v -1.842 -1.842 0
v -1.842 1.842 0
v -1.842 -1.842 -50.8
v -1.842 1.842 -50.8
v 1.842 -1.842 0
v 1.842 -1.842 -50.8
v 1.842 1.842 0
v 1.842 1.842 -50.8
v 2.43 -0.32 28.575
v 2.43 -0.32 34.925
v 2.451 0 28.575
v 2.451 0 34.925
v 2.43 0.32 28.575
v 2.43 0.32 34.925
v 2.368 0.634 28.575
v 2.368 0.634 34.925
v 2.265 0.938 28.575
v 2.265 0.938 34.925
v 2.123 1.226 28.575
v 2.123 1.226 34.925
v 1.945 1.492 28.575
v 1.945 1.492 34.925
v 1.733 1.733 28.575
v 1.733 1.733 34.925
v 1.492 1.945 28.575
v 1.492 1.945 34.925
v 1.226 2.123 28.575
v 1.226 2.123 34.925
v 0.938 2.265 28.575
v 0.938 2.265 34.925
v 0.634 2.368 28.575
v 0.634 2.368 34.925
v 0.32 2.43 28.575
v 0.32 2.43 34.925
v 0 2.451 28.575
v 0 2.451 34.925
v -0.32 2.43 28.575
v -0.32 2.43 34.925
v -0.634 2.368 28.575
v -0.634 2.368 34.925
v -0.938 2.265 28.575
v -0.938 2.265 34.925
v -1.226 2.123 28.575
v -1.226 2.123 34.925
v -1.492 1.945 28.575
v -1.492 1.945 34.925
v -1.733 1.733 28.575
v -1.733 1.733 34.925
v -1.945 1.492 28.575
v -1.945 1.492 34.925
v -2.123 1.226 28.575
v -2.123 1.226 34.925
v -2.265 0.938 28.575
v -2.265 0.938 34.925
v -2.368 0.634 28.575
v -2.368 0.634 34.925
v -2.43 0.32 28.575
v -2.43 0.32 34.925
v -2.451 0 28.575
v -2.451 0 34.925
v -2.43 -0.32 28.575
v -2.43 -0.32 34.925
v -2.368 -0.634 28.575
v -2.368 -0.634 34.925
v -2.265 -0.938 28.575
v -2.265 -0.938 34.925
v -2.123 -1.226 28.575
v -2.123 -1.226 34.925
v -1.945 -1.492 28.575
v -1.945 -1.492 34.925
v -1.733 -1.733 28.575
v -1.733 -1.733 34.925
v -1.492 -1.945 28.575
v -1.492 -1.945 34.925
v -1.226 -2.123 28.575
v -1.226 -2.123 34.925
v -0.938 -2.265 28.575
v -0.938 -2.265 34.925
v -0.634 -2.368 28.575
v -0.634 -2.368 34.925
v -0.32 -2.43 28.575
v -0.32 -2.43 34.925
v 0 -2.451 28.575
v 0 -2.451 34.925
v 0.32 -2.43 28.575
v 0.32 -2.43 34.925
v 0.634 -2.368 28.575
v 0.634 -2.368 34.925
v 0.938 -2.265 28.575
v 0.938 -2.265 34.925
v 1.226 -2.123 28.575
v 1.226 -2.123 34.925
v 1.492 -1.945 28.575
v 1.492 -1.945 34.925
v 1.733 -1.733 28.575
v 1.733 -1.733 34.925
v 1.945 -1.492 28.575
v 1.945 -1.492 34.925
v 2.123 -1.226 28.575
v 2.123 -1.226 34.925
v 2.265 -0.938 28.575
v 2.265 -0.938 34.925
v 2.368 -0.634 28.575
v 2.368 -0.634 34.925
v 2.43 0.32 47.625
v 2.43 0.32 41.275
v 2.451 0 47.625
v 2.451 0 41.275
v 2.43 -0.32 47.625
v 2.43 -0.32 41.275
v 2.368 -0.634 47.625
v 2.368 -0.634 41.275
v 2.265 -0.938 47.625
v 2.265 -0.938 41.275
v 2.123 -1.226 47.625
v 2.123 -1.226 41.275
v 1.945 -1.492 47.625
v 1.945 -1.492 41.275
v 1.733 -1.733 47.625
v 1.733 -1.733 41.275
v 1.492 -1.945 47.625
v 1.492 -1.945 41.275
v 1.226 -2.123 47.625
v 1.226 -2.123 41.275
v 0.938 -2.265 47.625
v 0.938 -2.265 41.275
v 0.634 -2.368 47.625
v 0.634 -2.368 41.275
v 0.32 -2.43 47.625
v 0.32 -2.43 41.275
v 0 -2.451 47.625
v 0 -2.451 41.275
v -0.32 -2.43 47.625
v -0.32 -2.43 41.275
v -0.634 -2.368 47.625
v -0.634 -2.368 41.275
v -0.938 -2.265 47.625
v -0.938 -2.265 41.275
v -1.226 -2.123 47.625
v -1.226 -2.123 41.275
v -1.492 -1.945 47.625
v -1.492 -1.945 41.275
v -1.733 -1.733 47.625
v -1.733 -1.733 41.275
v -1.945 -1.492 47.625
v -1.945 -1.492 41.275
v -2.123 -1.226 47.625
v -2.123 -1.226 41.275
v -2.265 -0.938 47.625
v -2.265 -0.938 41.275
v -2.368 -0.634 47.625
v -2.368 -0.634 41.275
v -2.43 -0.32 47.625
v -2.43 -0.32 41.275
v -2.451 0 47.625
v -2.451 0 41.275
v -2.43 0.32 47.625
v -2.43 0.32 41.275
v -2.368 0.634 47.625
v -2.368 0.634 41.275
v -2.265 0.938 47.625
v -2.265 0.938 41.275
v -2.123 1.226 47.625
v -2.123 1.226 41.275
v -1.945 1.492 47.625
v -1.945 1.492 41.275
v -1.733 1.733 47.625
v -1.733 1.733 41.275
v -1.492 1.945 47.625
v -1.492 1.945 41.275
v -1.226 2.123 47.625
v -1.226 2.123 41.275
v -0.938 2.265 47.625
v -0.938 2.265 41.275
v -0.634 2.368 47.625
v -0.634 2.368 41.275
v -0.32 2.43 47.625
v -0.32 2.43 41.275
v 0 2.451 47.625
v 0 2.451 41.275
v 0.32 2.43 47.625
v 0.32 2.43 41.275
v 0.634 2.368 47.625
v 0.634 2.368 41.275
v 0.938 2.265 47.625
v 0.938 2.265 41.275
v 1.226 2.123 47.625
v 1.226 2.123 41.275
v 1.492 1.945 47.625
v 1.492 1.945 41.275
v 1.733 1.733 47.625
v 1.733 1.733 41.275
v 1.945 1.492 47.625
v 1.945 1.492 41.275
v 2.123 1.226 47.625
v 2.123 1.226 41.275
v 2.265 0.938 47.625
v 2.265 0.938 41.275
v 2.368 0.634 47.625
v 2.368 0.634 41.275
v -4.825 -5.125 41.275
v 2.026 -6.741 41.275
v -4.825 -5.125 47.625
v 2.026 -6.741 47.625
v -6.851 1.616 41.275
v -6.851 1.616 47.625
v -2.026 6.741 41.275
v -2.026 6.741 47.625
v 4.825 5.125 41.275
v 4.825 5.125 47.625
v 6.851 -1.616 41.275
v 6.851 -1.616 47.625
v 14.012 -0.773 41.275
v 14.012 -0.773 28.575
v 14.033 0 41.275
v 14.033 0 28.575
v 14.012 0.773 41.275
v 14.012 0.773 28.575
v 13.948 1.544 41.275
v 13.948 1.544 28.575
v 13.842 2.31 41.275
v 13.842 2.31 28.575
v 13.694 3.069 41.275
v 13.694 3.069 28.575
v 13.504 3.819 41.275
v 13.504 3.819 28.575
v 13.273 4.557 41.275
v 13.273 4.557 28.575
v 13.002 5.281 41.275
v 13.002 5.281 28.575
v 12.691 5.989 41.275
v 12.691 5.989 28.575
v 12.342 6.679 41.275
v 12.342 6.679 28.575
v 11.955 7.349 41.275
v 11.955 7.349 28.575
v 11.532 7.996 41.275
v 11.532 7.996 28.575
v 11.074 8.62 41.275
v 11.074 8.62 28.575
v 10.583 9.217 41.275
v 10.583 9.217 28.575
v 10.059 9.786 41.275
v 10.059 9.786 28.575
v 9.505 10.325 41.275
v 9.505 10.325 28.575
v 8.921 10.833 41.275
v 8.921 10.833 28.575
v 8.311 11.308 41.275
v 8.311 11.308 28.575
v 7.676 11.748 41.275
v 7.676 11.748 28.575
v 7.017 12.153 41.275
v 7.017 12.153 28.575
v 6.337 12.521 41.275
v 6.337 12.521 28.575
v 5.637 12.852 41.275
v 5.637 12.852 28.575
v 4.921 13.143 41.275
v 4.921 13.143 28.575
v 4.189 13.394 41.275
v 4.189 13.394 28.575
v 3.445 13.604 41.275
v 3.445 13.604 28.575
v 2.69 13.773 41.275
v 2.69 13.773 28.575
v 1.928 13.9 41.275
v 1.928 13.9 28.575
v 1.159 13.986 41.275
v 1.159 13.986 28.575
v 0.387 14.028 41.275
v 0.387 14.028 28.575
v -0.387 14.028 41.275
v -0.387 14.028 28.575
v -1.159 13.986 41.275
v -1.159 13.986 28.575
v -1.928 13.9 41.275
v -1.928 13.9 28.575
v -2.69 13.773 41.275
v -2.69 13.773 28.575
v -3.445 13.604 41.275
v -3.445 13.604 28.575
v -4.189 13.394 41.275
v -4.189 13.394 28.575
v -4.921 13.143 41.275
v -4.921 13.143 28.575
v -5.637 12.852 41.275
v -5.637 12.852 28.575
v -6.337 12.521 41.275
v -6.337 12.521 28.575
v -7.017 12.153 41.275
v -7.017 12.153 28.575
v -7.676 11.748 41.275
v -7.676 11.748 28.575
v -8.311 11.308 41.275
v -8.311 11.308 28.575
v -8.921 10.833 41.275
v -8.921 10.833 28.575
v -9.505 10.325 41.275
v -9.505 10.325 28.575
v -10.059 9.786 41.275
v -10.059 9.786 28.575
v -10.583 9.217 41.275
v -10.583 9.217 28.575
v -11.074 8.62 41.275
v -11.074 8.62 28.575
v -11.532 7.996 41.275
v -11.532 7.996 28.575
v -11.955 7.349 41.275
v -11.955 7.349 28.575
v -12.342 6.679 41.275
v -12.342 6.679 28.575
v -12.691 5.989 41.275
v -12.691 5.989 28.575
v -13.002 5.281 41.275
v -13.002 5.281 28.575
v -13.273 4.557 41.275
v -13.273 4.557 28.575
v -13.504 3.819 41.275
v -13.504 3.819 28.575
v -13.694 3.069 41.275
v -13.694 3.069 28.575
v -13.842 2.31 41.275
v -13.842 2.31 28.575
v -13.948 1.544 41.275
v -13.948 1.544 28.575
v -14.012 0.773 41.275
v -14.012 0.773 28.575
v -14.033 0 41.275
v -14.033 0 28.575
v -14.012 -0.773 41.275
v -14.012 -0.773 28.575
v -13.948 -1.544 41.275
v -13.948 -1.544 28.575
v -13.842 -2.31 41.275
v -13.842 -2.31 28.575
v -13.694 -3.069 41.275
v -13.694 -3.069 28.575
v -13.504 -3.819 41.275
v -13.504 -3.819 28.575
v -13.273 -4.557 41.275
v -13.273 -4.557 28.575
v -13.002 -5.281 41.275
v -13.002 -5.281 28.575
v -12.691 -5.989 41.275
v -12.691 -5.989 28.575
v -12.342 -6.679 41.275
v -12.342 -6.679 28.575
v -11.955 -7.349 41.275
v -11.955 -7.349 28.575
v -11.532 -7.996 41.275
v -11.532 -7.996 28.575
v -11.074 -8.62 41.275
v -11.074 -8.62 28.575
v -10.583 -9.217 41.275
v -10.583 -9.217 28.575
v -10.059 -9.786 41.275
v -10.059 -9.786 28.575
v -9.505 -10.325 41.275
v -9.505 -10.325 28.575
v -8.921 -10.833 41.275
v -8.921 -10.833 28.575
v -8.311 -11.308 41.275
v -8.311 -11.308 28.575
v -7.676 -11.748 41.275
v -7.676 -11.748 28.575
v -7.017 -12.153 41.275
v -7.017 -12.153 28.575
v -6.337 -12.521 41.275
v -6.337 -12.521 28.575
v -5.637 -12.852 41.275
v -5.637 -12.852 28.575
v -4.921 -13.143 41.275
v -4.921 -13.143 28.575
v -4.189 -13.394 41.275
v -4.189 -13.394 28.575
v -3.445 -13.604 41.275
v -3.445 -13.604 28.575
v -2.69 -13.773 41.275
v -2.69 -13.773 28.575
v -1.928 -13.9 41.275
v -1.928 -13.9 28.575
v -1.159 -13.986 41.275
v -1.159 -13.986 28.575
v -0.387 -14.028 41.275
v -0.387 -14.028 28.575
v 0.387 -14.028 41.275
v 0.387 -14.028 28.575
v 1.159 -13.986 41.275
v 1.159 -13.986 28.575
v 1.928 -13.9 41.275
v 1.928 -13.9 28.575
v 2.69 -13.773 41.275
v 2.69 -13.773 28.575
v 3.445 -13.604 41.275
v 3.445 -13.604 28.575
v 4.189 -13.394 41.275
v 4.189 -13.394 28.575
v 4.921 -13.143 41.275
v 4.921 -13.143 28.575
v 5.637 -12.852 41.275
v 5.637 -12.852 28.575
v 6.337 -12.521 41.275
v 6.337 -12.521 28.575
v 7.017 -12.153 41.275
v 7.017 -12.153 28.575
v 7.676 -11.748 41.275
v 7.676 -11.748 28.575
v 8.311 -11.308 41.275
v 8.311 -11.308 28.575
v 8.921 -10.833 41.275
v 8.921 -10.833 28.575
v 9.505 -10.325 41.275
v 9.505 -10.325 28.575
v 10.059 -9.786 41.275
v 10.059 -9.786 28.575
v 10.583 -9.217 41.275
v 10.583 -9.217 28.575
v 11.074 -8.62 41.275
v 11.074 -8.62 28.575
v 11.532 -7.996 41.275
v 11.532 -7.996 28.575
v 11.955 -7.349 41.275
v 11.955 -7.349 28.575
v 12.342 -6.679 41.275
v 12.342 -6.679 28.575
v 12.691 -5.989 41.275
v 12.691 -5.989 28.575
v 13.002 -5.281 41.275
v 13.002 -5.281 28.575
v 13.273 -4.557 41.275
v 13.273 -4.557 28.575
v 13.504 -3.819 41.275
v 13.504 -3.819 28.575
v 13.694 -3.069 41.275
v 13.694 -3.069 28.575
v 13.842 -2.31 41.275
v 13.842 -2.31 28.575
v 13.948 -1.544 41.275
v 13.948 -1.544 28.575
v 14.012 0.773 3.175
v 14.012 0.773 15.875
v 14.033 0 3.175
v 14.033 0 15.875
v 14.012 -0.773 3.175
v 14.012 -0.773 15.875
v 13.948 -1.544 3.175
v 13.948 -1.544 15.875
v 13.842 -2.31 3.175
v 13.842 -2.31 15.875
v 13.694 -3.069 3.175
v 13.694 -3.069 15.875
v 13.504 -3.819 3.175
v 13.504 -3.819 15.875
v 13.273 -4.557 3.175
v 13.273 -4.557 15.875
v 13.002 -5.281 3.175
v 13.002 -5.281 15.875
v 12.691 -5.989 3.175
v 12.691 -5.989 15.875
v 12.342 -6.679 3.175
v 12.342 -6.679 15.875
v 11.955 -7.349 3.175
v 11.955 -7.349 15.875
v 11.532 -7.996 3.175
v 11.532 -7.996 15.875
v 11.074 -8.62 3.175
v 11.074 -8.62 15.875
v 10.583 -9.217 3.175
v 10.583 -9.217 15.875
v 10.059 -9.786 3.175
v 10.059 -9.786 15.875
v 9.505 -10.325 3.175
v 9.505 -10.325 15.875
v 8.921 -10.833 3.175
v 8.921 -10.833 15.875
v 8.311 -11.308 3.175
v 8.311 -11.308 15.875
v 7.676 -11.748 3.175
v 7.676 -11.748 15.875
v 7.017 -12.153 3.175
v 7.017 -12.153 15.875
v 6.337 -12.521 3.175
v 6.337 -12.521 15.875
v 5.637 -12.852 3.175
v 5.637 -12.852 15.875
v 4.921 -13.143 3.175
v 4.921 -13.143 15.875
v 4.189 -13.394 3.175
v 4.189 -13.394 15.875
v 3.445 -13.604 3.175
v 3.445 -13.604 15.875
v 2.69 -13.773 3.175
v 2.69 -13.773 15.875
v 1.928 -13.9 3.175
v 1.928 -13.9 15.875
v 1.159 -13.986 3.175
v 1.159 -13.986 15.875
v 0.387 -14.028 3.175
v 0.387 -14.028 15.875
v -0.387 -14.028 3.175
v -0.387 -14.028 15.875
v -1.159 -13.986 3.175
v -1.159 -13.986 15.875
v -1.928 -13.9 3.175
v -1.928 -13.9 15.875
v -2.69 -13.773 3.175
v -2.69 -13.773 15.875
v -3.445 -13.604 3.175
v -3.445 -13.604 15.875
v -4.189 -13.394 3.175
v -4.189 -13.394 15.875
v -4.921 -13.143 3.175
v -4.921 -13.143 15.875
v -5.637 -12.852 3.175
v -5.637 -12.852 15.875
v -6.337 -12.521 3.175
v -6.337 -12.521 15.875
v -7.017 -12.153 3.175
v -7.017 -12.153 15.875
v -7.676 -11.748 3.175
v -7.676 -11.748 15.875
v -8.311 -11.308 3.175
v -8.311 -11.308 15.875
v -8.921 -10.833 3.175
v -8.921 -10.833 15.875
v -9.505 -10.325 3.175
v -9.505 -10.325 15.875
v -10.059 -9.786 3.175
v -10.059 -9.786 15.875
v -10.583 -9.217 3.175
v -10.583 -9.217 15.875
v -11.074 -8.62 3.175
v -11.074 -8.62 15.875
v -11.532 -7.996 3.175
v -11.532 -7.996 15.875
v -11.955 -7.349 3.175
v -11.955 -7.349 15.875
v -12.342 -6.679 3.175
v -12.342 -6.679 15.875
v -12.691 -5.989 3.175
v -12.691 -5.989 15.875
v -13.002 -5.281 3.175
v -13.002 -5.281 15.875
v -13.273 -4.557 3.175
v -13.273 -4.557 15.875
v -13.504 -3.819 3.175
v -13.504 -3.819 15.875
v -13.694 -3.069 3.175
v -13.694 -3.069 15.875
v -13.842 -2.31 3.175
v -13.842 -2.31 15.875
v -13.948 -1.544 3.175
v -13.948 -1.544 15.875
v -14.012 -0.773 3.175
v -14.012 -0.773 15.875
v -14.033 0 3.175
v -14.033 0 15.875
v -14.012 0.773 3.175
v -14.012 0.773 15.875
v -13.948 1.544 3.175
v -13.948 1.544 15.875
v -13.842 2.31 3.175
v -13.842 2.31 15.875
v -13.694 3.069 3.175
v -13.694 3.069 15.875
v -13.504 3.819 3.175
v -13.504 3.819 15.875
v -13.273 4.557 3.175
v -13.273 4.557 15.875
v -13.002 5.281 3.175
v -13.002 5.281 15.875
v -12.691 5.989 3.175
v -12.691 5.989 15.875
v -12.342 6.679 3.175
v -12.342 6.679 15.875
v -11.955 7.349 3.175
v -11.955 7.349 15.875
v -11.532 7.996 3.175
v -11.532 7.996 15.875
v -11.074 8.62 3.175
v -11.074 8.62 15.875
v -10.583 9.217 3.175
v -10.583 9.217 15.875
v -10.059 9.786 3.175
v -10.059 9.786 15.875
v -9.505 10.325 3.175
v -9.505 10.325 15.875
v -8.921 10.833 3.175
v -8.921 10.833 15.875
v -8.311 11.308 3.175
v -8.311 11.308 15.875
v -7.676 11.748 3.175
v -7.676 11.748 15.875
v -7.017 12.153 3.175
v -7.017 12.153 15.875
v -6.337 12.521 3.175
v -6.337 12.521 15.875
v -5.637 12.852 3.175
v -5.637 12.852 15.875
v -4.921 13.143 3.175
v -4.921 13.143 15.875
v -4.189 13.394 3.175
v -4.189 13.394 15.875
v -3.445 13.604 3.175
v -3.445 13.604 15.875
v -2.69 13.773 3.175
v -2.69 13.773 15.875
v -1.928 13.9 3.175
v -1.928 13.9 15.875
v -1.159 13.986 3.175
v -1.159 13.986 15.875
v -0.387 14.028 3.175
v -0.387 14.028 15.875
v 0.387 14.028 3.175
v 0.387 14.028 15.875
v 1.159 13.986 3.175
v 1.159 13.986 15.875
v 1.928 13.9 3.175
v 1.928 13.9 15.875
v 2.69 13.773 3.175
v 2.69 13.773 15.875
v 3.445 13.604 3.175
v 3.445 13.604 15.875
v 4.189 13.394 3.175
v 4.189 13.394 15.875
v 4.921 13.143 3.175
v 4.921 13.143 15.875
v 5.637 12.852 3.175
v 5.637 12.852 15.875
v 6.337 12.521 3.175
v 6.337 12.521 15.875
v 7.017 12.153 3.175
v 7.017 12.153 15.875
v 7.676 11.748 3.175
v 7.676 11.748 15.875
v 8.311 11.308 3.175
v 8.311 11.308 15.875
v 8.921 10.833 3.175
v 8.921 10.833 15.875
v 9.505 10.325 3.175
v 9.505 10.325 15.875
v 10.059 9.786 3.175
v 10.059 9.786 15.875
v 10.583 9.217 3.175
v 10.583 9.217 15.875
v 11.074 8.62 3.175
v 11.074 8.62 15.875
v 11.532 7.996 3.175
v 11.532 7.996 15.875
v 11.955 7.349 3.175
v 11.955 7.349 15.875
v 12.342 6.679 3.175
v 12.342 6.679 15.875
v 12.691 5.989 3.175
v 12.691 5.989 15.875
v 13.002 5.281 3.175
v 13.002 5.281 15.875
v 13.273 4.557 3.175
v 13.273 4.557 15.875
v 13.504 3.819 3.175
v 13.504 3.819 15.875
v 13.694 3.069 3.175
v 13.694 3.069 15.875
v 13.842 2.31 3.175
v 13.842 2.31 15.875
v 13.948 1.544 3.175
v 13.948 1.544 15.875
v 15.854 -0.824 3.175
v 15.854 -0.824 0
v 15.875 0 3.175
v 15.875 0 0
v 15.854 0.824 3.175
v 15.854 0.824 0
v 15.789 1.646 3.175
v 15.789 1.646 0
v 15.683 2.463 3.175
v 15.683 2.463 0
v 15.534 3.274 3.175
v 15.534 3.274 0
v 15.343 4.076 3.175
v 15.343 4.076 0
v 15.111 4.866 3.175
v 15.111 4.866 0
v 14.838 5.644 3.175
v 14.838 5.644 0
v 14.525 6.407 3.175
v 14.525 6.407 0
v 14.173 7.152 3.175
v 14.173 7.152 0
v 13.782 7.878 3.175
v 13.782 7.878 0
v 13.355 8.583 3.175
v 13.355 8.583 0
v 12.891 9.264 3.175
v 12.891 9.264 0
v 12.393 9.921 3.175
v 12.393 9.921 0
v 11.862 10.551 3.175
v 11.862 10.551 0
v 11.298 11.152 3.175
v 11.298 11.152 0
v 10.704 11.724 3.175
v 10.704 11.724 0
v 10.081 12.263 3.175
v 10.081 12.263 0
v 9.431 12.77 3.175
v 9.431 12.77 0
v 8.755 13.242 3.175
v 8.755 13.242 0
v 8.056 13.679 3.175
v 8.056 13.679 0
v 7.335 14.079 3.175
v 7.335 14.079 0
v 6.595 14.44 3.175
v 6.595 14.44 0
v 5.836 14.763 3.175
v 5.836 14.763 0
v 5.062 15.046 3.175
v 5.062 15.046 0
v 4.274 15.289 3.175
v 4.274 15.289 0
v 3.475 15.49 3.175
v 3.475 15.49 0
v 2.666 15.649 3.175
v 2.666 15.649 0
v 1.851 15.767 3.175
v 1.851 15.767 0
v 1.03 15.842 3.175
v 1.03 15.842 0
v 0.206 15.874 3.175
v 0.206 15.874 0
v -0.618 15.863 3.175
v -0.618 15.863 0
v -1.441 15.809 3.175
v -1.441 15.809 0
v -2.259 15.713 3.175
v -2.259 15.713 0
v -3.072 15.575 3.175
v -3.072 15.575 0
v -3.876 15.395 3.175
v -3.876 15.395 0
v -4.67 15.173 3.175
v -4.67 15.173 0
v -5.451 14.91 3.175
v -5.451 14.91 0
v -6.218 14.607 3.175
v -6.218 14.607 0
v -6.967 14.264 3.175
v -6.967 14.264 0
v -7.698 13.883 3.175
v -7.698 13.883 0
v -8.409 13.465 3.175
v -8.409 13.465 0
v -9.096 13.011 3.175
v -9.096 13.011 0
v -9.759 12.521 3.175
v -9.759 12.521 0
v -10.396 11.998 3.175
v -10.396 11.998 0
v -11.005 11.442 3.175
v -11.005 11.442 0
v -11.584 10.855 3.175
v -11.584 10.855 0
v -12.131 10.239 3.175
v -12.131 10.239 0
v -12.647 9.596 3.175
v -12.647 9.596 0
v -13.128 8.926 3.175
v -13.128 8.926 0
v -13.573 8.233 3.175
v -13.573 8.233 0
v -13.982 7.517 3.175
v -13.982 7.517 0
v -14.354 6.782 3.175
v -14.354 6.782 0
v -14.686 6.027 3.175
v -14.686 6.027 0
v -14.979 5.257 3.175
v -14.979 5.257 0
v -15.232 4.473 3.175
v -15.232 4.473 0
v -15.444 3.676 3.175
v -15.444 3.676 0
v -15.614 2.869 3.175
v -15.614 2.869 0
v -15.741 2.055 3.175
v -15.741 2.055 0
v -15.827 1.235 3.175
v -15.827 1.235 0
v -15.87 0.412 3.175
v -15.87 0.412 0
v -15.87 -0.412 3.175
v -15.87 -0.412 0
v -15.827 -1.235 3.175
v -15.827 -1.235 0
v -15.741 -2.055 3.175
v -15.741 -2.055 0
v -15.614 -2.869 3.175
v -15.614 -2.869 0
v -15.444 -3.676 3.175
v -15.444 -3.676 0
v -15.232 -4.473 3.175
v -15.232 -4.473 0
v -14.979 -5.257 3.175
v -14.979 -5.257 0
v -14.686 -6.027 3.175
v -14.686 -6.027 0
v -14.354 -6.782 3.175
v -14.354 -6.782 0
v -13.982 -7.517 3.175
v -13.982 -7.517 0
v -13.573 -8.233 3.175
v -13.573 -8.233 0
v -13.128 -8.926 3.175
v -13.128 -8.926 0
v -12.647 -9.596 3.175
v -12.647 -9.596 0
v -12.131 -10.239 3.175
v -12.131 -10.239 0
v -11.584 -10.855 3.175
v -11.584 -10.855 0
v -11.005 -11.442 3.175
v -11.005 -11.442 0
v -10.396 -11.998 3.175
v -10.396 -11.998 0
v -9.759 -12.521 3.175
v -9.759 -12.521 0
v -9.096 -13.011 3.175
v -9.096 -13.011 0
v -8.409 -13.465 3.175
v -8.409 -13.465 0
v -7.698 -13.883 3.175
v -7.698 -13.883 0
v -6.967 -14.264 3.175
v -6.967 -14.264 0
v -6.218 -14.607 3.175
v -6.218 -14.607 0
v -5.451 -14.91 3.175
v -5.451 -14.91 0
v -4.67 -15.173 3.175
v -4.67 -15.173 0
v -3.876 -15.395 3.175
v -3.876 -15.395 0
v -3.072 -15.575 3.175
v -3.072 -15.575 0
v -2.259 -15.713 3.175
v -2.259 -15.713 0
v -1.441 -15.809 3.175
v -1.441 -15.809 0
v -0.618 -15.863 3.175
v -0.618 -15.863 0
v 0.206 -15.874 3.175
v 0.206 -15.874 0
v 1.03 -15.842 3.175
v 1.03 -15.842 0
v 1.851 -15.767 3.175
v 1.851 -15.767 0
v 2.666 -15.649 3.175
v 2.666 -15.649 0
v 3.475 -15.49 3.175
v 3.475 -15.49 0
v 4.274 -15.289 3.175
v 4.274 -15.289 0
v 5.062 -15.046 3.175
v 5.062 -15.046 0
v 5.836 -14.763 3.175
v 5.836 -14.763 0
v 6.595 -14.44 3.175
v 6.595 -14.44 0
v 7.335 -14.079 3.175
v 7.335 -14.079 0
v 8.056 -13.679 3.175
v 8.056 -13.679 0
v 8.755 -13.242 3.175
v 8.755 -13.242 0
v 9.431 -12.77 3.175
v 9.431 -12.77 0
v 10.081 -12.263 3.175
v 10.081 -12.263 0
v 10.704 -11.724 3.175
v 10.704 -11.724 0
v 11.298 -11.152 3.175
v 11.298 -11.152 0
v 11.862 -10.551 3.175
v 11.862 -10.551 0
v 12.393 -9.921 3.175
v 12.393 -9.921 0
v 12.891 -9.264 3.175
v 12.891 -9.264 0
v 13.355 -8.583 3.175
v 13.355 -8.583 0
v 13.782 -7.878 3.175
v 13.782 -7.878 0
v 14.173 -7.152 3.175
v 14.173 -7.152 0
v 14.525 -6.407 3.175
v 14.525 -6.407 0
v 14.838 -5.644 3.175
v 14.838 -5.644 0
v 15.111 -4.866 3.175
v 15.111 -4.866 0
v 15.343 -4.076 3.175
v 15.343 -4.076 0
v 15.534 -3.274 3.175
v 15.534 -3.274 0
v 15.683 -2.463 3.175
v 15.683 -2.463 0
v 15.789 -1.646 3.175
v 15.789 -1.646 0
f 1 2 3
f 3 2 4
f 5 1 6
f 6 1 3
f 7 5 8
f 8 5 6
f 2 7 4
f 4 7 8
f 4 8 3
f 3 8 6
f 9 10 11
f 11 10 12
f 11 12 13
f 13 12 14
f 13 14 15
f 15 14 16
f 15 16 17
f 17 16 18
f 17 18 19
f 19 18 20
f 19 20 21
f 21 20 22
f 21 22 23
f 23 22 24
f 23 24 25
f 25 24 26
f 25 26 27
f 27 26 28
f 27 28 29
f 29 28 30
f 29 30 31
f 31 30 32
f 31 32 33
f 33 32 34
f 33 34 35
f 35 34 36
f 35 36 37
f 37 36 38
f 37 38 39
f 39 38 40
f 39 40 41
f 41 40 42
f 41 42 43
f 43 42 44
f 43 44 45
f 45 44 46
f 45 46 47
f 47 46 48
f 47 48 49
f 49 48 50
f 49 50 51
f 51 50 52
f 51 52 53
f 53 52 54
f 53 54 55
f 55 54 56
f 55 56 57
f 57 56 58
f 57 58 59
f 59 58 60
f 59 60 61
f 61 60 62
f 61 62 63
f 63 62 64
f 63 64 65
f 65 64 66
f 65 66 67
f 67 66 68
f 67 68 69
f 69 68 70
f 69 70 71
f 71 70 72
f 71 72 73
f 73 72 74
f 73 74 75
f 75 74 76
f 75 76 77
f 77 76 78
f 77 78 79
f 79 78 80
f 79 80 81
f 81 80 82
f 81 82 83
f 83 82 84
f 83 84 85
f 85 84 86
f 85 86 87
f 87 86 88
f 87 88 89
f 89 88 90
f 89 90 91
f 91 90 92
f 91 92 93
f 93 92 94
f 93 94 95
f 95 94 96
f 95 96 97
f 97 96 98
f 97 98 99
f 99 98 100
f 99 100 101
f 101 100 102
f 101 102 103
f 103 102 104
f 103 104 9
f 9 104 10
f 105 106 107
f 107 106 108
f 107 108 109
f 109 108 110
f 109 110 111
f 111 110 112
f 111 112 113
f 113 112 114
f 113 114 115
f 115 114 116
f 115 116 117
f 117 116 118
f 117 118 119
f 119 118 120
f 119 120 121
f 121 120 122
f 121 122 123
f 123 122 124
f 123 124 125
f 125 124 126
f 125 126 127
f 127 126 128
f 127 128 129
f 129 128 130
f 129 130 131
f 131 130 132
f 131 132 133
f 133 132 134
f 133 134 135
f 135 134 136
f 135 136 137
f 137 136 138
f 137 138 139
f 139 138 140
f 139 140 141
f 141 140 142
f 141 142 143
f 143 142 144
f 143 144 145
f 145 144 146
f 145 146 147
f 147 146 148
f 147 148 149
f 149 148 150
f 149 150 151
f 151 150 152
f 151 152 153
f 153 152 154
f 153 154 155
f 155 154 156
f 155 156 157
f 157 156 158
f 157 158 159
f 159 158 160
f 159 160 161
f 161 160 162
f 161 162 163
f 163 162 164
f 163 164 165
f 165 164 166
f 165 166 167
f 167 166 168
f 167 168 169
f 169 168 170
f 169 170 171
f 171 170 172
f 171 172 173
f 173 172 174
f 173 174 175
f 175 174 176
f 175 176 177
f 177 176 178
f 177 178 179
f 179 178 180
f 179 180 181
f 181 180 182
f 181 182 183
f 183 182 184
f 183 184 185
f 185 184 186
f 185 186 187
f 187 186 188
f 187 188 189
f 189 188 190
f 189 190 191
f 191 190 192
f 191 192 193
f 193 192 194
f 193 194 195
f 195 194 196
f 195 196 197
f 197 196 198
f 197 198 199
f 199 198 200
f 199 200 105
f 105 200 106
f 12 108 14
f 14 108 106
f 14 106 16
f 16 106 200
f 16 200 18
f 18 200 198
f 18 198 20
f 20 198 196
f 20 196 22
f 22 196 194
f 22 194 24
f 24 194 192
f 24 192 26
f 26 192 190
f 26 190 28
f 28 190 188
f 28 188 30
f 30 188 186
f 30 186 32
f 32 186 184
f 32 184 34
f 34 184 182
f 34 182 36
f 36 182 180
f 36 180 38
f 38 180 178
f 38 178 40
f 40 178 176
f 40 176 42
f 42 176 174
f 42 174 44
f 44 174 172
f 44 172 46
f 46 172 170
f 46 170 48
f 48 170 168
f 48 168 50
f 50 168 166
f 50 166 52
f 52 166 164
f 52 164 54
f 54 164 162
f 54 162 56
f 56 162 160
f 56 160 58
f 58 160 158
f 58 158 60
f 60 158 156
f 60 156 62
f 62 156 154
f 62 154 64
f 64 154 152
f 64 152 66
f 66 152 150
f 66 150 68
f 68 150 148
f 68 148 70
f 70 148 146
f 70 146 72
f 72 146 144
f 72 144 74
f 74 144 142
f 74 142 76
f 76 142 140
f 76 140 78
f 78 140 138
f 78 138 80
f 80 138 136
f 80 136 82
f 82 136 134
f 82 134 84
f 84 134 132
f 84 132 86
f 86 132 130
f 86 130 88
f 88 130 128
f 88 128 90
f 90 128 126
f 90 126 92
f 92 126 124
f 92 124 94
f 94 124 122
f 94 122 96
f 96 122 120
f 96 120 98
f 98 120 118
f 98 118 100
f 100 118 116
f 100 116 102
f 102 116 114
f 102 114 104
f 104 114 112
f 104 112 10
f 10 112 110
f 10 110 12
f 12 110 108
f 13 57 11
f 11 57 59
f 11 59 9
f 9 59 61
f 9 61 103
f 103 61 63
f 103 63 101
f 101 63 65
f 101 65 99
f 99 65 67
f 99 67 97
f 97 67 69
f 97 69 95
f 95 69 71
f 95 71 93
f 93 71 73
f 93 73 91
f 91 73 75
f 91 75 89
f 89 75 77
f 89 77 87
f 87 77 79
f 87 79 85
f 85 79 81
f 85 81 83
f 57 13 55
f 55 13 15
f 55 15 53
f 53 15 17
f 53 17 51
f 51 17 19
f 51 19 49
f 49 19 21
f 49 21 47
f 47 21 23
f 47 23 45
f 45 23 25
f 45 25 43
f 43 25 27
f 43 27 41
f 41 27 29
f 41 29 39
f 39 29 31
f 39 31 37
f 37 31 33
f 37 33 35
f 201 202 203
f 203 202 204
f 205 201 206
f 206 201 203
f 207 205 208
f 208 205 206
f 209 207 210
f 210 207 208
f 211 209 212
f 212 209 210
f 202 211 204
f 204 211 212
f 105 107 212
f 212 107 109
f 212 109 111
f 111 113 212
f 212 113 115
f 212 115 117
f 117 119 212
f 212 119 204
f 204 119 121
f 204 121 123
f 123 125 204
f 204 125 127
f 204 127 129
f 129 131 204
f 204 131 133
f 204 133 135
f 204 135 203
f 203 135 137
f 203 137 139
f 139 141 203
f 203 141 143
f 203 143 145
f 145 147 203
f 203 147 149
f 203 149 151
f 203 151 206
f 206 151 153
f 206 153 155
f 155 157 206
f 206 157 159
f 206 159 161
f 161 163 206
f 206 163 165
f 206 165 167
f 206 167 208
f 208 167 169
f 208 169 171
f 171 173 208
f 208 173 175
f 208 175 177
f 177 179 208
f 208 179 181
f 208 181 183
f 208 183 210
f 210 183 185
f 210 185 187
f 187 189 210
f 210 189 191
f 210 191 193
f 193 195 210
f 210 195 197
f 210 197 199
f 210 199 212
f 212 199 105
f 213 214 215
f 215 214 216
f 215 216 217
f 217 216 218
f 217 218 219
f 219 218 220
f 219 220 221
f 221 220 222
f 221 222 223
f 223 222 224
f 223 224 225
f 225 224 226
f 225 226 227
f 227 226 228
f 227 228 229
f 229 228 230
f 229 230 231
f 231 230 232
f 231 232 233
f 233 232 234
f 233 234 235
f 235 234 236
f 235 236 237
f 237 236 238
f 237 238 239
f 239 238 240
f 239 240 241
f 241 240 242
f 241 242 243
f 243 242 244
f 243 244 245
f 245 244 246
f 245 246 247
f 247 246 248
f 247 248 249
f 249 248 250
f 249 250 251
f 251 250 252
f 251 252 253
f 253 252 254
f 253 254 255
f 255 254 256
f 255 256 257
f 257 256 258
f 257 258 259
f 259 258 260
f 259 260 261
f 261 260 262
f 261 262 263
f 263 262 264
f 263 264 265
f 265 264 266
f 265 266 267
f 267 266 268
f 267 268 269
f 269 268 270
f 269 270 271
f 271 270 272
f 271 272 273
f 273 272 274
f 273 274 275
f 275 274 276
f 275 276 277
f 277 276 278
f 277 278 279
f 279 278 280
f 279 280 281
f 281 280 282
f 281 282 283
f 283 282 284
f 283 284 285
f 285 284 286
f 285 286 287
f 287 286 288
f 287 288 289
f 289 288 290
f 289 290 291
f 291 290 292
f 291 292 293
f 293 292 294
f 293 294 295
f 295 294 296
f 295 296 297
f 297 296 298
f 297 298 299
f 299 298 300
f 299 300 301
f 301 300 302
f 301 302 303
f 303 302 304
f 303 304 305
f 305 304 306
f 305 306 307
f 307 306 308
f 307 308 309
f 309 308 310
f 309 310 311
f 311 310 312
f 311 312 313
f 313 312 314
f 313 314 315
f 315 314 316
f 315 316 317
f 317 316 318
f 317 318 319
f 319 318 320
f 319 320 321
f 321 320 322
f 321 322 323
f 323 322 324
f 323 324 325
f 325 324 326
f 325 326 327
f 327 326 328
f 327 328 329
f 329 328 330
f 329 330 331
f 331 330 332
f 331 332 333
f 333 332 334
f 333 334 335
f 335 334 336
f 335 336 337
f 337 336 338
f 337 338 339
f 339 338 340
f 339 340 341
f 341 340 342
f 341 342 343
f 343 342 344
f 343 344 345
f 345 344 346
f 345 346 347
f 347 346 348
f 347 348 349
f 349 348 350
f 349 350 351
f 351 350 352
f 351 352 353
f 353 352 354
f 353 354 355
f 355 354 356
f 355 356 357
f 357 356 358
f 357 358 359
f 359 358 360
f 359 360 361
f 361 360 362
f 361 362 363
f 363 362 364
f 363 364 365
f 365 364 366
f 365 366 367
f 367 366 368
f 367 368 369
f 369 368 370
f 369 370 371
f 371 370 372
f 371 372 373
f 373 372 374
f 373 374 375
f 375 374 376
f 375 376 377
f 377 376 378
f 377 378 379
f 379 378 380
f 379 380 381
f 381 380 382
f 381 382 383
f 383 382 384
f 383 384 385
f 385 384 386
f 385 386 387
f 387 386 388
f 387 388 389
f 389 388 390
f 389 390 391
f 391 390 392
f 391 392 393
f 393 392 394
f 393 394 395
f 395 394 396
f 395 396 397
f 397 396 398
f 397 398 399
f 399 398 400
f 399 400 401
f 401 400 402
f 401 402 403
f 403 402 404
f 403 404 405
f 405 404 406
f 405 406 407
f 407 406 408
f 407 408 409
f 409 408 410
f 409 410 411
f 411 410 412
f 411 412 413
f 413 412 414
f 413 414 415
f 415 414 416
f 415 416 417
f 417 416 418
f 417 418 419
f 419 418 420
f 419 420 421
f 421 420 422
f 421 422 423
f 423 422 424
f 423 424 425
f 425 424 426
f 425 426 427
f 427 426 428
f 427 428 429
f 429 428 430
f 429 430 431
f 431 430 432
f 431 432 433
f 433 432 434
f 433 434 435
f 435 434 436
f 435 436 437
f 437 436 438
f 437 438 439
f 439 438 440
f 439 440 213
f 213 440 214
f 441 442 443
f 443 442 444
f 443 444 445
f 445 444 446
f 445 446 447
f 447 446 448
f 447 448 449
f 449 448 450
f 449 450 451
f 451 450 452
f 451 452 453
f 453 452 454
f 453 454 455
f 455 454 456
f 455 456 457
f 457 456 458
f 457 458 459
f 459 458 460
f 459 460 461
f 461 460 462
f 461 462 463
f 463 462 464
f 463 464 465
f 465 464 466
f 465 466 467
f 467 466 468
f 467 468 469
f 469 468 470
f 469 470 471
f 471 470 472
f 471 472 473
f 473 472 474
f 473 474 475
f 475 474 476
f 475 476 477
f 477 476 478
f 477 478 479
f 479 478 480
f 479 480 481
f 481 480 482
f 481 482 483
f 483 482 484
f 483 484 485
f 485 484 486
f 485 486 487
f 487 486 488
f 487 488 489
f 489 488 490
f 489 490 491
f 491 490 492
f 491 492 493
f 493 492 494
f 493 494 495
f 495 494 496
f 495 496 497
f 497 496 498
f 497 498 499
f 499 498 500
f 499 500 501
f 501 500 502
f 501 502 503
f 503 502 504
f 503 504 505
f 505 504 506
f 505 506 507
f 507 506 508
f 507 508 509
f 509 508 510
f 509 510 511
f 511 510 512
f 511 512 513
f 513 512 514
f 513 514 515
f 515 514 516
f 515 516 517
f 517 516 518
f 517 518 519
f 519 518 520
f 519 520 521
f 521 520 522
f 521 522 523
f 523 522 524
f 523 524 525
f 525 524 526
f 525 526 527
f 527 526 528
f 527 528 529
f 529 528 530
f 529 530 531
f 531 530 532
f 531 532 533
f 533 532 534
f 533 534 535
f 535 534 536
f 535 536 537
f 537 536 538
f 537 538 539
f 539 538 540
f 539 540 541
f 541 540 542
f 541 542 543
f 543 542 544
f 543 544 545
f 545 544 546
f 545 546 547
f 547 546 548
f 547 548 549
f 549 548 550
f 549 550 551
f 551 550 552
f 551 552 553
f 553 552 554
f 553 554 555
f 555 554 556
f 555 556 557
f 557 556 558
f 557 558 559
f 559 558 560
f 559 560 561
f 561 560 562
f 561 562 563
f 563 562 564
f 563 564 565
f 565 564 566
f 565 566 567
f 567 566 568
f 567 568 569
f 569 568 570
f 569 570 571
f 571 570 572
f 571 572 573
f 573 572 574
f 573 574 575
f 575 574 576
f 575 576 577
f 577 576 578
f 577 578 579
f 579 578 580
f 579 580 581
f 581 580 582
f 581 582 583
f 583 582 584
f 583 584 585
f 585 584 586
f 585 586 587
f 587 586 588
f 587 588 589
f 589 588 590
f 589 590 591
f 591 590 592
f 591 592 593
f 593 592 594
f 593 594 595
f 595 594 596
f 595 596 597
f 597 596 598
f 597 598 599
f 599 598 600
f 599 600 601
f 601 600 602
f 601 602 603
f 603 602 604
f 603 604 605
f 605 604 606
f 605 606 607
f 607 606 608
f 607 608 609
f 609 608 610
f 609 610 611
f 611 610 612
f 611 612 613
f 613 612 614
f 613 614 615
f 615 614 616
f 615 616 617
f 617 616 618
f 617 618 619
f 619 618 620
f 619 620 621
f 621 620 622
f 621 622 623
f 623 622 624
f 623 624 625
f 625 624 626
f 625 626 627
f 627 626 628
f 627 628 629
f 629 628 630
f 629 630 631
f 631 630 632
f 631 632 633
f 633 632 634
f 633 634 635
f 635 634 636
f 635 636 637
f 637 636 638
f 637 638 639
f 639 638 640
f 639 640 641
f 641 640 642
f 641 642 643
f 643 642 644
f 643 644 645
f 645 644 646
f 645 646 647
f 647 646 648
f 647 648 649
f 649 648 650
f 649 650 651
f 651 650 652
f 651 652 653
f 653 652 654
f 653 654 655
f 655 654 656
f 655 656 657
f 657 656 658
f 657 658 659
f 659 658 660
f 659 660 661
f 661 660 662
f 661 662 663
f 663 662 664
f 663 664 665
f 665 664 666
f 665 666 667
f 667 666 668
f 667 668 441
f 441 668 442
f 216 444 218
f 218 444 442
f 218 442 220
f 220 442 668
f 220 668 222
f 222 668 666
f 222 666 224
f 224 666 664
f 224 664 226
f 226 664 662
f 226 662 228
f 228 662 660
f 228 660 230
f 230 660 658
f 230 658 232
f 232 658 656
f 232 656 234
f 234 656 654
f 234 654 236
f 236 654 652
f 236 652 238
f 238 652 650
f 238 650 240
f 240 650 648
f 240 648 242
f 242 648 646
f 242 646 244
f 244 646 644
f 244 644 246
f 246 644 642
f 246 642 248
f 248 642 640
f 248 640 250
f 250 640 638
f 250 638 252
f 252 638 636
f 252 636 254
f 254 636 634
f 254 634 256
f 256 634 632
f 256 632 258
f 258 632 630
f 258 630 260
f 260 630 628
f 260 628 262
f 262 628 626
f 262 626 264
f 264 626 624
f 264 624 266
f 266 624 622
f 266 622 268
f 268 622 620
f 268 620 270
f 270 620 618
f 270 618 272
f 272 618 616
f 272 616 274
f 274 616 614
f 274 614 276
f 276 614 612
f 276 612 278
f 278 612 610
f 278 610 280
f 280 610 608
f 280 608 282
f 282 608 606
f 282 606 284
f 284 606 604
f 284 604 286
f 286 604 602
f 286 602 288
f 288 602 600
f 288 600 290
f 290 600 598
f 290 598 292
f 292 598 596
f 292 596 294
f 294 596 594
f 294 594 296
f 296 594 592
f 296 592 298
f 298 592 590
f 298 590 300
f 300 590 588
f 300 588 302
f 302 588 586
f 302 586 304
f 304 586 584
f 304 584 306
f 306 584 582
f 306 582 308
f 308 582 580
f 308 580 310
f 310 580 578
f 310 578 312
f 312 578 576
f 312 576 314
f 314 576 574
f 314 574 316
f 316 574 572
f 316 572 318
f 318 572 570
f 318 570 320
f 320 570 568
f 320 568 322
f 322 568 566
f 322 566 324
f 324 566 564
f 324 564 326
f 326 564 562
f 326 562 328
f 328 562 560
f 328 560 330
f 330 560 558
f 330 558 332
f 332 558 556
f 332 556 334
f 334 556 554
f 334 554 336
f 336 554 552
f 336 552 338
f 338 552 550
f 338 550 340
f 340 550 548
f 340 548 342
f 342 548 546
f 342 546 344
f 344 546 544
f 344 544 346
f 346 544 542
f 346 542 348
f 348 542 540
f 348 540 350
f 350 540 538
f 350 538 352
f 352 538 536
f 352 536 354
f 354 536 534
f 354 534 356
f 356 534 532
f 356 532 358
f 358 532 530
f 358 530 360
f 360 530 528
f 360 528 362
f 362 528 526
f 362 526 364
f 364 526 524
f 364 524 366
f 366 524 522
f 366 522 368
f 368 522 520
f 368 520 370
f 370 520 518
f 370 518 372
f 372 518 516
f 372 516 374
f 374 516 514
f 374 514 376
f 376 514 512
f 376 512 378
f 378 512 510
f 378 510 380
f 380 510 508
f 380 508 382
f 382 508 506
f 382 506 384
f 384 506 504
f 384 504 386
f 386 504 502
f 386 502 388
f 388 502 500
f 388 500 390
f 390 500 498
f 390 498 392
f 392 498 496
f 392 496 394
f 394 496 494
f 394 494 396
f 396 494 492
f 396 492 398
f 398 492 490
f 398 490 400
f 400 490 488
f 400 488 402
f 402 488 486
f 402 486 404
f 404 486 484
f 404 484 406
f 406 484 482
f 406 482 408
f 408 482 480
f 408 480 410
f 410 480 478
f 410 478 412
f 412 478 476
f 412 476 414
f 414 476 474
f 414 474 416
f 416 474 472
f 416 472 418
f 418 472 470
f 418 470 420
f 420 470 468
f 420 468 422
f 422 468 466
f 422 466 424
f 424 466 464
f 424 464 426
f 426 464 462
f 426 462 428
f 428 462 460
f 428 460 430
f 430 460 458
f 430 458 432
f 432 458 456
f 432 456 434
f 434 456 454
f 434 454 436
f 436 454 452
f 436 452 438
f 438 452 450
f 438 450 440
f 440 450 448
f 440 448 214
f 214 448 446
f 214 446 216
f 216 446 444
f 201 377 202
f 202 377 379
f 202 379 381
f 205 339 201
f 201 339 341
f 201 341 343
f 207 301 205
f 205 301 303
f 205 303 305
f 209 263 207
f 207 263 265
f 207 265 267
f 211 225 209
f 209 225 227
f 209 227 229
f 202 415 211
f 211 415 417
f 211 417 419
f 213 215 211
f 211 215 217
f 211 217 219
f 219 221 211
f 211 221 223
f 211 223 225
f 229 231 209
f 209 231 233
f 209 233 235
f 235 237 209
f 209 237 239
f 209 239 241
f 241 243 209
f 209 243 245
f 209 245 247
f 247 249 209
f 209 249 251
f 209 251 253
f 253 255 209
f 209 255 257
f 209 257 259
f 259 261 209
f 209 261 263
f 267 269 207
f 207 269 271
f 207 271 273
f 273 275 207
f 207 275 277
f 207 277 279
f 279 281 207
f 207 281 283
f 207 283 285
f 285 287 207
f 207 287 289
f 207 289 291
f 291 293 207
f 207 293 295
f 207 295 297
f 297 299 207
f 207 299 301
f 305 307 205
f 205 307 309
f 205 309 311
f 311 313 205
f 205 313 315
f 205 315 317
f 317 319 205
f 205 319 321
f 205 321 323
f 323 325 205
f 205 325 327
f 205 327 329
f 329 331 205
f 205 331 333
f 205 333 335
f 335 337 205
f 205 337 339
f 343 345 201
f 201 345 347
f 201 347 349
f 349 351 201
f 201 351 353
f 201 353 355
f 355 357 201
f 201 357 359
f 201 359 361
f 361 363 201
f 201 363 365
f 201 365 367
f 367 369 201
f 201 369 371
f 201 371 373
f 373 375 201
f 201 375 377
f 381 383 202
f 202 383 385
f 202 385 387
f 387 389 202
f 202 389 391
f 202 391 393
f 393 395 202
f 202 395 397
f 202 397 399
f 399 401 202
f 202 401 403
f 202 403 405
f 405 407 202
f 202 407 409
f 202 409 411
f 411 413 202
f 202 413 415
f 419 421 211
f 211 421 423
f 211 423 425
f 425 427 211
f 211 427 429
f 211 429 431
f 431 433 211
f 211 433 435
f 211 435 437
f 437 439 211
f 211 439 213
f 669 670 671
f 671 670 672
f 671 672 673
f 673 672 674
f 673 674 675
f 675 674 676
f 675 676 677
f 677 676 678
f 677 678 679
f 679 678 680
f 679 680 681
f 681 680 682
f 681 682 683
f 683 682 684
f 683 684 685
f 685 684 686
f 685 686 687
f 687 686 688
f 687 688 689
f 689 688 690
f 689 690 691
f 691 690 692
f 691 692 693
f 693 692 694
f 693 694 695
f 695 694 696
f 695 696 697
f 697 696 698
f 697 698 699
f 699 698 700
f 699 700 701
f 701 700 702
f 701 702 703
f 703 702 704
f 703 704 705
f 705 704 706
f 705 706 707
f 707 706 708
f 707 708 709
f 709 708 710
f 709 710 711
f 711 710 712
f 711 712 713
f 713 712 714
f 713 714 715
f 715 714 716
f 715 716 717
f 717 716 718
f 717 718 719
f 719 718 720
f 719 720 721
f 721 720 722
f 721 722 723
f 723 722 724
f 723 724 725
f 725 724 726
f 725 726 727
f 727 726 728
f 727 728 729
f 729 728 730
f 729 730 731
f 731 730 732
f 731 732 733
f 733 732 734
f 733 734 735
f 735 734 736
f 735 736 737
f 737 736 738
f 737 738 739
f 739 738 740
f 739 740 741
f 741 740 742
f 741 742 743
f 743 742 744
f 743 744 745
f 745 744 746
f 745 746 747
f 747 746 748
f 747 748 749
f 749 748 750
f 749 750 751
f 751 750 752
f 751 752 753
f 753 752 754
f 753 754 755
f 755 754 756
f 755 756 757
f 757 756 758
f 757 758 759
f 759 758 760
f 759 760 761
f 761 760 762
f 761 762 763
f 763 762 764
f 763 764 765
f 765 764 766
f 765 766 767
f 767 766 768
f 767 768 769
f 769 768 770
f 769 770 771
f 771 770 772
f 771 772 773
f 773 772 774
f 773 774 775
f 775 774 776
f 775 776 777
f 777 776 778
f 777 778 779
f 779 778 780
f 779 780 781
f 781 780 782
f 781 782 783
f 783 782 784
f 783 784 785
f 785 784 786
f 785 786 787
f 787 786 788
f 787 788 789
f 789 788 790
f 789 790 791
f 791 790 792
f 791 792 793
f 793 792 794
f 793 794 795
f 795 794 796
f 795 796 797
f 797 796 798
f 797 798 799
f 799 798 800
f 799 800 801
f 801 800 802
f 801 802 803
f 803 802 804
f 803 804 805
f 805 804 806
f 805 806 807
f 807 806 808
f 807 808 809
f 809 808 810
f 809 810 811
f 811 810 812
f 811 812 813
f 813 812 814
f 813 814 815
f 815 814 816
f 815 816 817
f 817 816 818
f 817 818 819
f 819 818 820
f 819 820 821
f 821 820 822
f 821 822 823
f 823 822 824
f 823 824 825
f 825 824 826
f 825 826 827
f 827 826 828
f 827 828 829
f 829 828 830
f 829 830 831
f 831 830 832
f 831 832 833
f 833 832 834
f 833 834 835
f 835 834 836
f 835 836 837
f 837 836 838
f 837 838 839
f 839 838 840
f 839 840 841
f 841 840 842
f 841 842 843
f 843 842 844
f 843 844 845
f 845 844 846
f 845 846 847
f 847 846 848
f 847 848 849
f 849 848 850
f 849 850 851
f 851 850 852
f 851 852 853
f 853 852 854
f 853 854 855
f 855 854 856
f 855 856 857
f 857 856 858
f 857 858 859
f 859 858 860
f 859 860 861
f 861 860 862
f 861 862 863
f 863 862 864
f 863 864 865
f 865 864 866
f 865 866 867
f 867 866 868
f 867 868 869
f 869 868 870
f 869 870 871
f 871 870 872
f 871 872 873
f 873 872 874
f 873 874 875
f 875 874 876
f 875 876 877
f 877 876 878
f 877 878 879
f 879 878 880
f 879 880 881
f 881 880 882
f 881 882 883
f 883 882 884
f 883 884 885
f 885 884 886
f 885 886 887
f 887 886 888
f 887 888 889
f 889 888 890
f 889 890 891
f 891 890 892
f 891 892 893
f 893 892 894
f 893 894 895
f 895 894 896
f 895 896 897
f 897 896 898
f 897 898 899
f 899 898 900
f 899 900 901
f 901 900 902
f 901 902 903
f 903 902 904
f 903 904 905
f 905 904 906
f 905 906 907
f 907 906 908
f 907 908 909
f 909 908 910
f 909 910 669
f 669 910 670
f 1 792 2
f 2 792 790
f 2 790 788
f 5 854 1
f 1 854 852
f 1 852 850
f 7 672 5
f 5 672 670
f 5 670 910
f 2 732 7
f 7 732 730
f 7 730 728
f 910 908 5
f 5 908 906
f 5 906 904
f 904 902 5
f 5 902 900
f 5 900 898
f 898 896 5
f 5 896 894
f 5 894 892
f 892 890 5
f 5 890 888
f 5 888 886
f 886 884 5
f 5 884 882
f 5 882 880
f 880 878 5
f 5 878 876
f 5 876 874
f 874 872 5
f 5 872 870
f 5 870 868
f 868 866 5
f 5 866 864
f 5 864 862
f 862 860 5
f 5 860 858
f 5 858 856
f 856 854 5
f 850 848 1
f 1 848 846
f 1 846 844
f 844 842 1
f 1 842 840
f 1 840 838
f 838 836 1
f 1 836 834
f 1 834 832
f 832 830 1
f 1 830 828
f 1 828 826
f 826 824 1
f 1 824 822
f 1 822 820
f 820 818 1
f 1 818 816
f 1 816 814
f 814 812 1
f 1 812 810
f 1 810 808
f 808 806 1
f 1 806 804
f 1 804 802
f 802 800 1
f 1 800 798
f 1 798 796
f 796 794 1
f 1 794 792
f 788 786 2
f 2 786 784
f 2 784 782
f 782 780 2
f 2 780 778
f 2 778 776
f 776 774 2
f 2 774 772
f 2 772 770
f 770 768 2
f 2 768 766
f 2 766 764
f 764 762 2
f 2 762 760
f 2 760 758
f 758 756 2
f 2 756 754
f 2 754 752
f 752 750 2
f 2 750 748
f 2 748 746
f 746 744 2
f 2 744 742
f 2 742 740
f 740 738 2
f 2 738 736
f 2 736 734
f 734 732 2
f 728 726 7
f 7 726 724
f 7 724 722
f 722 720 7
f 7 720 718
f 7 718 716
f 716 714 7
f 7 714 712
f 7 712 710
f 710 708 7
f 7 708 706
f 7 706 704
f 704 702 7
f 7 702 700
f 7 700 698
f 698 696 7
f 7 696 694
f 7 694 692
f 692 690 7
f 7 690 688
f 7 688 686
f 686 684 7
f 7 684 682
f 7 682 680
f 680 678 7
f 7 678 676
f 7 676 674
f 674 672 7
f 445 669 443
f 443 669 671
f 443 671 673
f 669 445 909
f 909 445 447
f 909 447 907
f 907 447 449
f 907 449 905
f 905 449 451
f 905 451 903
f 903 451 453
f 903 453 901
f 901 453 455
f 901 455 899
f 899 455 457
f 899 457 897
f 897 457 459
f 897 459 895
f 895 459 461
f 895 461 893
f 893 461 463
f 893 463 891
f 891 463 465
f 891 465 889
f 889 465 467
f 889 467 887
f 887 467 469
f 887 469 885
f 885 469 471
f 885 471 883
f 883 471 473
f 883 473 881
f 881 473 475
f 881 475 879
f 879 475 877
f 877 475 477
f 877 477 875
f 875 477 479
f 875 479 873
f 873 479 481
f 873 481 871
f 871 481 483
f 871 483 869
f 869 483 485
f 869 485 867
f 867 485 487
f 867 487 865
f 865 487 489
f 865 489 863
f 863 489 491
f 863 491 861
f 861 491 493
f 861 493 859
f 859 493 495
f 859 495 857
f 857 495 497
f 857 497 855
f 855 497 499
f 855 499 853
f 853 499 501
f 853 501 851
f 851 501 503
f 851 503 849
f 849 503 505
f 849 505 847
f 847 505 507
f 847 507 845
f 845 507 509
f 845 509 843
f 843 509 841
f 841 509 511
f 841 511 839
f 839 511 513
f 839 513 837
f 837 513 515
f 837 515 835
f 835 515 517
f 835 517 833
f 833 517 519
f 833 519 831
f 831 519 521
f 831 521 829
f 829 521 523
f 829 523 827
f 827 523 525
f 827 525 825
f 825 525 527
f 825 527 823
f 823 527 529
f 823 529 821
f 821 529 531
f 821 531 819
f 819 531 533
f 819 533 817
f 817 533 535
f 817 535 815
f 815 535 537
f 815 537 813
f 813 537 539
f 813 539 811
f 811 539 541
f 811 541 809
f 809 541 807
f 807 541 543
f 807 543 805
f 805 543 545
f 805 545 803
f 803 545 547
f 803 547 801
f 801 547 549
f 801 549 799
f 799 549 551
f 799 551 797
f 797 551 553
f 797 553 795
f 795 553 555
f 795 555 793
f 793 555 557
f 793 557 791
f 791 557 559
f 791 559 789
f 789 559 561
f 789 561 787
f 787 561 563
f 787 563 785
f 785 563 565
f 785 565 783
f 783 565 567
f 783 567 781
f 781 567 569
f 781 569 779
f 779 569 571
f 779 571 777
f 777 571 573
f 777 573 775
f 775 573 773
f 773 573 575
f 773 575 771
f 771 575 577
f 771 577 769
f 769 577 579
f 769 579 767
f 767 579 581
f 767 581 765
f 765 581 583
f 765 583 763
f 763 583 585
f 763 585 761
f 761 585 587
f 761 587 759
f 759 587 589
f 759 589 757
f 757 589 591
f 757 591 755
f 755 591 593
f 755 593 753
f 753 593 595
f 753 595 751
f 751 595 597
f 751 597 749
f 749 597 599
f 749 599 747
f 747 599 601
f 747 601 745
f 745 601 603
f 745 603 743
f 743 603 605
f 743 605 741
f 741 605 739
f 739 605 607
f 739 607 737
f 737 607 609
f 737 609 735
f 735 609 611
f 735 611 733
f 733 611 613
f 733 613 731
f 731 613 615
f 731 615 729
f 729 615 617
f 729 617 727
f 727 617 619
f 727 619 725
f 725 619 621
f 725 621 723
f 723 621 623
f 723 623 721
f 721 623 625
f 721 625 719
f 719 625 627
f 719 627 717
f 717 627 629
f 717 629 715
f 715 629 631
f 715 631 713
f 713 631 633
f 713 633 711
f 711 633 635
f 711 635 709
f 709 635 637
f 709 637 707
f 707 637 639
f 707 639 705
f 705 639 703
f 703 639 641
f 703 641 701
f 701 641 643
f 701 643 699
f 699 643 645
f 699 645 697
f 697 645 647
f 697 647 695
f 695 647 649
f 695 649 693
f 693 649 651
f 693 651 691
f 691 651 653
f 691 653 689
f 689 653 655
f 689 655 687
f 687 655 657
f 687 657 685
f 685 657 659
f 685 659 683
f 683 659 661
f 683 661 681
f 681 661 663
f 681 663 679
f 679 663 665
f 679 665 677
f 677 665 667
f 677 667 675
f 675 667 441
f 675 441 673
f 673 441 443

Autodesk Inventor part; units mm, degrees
ref_plane "YZ Plane" through (0, 0, 0) normal (1, 0, 0) x (0, 1, 0)
ref_plane "XZ Plane" through (0, 0, 0) normal (0, 1, 0) x (-1, 0, 0)
ref_plane "XY Plane" through (0, 0, 0) normal (0, 0, 1) x (1, 0, 0)
sketch "Sketch1" plane through (0, 0, 0) normal (0, 0, 1) x (1, 0, 0)
  circle A0 centre (0, 0) radius 15.875
  dimension "d0" = 31.75
extrude "Extrusion1" add sketch "Sketch1" along normal blind 3.175
sketch "Sketch2" plane through (0, 0, 3.175) normal (0, 0, 1) x (1, 0, 0)
  circle A0 centre (0, 0) radius 14.0335
  dimension "d3" = 28.067
extrude "Extrusion2" add sketch "Sketch2" along normal blind 38.1
sketch "Sketch3" plane through (0, 0, 41.275) normal (0, 0, 1) x (1, 0, 0)
  line L0 (6.851, -1.6161) -> (2.0259, -6.7412)
  line L1 (2.0259, -6.7412) -> (-4.8251, -5.1251)
  line L2 (-4.8251, -5.1251) -> (-6.851, 1.6161)
  line L3 (-6.851, 1.6161) -> (-2.0259, 6.7412)
  line L4 (-2.0259, 6.7412) -> (4.8251, 5.1251)
  line L5 (4.8251, 5.1251) -> (6.851, -1.6161)
  point P0 (0, 0)
  point P1 (0, 0)
  dimension "d6" = 12.192
extrude "Extrusion3" add sketch "Sketch3" along normal blind 6.35
sketch "Sketch4" plane through (0, 0, 47.625) normal (0, 0, 1) x (1, 0, 0)
  circle A0 centre (0, 0) radius 2.4511
  dimension "d9" = 4.9022
extrude "Extrusion4" cut sketch "Sketch4" against normal blind 19.05
sketch "Sketch5" plane through (0, 0, 0) normal (0, 0, -1) x (-1, 0, 0)
  line L0 (1.8415, 1.8415) -> (-1.8415, 1.8415)
  line L1 (-1.8415, 1.8415) -> (-1.8415, -1.8415)
  line L2 (-1.8415, -1.8415) -> (1.8415, -1.8415)
  line L3 (1.8415, -1.8415) -> (1.8415, 1.8415)
  point P0 (0, 0)
  point P1 (0, -1.8415)
  point P2 (1.8415, 0)
  dimension "d12" = 3.683
extrude "Extrusion5" add sketch "Sketch5" along normal blind 50.8
sketch "Sketch6" plane through (0, 0, 0) normal (0, 0, -1) x (-1, 0, 0)
  point P0 (0, 0)
properties part number "drive shaft"
